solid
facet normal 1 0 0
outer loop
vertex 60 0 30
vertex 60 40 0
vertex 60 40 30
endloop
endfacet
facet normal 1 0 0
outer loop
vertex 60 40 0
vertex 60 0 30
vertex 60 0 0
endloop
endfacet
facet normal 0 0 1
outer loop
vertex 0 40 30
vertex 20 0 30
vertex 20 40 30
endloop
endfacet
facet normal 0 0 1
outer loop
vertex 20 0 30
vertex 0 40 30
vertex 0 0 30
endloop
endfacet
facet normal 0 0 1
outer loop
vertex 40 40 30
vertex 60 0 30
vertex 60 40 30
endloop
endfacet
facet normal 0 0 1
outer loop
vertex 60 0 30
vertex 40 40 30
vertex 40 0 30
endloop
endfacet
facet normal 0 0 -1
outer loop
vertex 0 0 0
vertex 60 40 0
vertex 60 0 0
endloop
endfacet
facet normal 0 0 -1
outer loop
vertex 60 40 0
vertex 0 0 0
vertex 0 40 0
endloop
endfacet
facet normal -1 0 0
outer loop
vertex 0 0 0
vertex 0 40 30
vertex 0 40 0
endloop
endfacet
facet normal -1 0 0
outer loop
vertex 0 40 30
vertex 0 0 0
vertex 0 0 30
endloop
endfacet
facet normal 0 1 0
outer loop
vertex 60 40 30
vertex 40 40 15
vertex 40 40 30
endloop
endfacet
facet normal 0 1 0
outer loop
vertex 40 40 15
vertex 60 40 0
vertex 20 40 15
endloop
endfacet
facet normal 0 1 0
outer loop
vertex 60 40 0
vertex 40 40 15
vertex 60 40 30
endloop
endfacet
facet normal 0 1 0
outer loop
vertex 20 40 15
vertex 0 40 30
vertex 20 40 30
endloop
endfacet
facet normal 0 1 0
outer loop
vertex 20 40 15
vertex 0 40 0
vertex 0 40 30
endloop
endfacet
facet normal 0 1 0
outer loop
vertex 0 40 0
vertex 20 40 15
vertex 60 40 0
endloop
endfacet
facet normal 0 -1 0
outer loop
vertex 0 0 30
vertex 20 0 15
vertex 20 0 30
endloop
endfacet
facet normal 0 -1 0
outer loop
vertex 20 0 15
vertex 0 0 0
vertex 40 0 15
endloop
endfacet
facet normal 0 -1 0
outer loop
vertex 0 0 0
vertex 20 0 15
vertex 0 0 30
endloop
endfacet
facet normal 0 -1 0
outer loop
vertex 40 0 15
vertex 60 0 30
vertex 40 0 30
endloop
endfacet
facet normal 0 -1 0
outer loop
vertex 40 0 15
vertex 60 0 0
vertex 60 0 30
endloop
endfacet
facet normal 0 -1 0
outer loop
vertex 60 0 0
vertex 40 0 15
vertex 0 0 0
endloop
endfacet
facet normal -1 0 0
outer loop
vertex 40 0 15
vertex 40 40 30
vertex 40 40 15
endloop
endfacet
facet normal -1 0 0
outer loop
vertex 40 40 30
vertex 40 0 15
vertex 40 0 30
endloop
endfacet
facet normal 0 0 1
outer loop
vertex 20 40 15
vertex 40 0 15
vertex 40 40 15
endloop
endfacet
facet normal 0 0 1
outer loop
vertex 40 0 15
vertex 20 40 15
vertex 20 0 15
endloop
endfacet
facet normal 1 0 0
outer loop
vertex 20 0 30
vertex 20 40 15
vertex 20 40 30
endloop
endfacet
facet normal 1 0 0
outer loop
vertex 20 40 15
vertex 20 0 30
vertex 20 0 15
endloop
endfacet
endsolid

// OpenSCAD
// 凹槽塊（notch）— 由 ortho_lib_work/objects.py 產生，請改 objects.py 後重建
// 長方塊 60×40×30，頂面中央由前到後挖一道寬 20、深 15 的方槽（貫穿前後）。
difference() {
  union() {
    translate([0,0,0]) cube([60,40,30]);
  }
  union() {
    translate([20,-1,15]) cube([20,42,16]);
  }
}
